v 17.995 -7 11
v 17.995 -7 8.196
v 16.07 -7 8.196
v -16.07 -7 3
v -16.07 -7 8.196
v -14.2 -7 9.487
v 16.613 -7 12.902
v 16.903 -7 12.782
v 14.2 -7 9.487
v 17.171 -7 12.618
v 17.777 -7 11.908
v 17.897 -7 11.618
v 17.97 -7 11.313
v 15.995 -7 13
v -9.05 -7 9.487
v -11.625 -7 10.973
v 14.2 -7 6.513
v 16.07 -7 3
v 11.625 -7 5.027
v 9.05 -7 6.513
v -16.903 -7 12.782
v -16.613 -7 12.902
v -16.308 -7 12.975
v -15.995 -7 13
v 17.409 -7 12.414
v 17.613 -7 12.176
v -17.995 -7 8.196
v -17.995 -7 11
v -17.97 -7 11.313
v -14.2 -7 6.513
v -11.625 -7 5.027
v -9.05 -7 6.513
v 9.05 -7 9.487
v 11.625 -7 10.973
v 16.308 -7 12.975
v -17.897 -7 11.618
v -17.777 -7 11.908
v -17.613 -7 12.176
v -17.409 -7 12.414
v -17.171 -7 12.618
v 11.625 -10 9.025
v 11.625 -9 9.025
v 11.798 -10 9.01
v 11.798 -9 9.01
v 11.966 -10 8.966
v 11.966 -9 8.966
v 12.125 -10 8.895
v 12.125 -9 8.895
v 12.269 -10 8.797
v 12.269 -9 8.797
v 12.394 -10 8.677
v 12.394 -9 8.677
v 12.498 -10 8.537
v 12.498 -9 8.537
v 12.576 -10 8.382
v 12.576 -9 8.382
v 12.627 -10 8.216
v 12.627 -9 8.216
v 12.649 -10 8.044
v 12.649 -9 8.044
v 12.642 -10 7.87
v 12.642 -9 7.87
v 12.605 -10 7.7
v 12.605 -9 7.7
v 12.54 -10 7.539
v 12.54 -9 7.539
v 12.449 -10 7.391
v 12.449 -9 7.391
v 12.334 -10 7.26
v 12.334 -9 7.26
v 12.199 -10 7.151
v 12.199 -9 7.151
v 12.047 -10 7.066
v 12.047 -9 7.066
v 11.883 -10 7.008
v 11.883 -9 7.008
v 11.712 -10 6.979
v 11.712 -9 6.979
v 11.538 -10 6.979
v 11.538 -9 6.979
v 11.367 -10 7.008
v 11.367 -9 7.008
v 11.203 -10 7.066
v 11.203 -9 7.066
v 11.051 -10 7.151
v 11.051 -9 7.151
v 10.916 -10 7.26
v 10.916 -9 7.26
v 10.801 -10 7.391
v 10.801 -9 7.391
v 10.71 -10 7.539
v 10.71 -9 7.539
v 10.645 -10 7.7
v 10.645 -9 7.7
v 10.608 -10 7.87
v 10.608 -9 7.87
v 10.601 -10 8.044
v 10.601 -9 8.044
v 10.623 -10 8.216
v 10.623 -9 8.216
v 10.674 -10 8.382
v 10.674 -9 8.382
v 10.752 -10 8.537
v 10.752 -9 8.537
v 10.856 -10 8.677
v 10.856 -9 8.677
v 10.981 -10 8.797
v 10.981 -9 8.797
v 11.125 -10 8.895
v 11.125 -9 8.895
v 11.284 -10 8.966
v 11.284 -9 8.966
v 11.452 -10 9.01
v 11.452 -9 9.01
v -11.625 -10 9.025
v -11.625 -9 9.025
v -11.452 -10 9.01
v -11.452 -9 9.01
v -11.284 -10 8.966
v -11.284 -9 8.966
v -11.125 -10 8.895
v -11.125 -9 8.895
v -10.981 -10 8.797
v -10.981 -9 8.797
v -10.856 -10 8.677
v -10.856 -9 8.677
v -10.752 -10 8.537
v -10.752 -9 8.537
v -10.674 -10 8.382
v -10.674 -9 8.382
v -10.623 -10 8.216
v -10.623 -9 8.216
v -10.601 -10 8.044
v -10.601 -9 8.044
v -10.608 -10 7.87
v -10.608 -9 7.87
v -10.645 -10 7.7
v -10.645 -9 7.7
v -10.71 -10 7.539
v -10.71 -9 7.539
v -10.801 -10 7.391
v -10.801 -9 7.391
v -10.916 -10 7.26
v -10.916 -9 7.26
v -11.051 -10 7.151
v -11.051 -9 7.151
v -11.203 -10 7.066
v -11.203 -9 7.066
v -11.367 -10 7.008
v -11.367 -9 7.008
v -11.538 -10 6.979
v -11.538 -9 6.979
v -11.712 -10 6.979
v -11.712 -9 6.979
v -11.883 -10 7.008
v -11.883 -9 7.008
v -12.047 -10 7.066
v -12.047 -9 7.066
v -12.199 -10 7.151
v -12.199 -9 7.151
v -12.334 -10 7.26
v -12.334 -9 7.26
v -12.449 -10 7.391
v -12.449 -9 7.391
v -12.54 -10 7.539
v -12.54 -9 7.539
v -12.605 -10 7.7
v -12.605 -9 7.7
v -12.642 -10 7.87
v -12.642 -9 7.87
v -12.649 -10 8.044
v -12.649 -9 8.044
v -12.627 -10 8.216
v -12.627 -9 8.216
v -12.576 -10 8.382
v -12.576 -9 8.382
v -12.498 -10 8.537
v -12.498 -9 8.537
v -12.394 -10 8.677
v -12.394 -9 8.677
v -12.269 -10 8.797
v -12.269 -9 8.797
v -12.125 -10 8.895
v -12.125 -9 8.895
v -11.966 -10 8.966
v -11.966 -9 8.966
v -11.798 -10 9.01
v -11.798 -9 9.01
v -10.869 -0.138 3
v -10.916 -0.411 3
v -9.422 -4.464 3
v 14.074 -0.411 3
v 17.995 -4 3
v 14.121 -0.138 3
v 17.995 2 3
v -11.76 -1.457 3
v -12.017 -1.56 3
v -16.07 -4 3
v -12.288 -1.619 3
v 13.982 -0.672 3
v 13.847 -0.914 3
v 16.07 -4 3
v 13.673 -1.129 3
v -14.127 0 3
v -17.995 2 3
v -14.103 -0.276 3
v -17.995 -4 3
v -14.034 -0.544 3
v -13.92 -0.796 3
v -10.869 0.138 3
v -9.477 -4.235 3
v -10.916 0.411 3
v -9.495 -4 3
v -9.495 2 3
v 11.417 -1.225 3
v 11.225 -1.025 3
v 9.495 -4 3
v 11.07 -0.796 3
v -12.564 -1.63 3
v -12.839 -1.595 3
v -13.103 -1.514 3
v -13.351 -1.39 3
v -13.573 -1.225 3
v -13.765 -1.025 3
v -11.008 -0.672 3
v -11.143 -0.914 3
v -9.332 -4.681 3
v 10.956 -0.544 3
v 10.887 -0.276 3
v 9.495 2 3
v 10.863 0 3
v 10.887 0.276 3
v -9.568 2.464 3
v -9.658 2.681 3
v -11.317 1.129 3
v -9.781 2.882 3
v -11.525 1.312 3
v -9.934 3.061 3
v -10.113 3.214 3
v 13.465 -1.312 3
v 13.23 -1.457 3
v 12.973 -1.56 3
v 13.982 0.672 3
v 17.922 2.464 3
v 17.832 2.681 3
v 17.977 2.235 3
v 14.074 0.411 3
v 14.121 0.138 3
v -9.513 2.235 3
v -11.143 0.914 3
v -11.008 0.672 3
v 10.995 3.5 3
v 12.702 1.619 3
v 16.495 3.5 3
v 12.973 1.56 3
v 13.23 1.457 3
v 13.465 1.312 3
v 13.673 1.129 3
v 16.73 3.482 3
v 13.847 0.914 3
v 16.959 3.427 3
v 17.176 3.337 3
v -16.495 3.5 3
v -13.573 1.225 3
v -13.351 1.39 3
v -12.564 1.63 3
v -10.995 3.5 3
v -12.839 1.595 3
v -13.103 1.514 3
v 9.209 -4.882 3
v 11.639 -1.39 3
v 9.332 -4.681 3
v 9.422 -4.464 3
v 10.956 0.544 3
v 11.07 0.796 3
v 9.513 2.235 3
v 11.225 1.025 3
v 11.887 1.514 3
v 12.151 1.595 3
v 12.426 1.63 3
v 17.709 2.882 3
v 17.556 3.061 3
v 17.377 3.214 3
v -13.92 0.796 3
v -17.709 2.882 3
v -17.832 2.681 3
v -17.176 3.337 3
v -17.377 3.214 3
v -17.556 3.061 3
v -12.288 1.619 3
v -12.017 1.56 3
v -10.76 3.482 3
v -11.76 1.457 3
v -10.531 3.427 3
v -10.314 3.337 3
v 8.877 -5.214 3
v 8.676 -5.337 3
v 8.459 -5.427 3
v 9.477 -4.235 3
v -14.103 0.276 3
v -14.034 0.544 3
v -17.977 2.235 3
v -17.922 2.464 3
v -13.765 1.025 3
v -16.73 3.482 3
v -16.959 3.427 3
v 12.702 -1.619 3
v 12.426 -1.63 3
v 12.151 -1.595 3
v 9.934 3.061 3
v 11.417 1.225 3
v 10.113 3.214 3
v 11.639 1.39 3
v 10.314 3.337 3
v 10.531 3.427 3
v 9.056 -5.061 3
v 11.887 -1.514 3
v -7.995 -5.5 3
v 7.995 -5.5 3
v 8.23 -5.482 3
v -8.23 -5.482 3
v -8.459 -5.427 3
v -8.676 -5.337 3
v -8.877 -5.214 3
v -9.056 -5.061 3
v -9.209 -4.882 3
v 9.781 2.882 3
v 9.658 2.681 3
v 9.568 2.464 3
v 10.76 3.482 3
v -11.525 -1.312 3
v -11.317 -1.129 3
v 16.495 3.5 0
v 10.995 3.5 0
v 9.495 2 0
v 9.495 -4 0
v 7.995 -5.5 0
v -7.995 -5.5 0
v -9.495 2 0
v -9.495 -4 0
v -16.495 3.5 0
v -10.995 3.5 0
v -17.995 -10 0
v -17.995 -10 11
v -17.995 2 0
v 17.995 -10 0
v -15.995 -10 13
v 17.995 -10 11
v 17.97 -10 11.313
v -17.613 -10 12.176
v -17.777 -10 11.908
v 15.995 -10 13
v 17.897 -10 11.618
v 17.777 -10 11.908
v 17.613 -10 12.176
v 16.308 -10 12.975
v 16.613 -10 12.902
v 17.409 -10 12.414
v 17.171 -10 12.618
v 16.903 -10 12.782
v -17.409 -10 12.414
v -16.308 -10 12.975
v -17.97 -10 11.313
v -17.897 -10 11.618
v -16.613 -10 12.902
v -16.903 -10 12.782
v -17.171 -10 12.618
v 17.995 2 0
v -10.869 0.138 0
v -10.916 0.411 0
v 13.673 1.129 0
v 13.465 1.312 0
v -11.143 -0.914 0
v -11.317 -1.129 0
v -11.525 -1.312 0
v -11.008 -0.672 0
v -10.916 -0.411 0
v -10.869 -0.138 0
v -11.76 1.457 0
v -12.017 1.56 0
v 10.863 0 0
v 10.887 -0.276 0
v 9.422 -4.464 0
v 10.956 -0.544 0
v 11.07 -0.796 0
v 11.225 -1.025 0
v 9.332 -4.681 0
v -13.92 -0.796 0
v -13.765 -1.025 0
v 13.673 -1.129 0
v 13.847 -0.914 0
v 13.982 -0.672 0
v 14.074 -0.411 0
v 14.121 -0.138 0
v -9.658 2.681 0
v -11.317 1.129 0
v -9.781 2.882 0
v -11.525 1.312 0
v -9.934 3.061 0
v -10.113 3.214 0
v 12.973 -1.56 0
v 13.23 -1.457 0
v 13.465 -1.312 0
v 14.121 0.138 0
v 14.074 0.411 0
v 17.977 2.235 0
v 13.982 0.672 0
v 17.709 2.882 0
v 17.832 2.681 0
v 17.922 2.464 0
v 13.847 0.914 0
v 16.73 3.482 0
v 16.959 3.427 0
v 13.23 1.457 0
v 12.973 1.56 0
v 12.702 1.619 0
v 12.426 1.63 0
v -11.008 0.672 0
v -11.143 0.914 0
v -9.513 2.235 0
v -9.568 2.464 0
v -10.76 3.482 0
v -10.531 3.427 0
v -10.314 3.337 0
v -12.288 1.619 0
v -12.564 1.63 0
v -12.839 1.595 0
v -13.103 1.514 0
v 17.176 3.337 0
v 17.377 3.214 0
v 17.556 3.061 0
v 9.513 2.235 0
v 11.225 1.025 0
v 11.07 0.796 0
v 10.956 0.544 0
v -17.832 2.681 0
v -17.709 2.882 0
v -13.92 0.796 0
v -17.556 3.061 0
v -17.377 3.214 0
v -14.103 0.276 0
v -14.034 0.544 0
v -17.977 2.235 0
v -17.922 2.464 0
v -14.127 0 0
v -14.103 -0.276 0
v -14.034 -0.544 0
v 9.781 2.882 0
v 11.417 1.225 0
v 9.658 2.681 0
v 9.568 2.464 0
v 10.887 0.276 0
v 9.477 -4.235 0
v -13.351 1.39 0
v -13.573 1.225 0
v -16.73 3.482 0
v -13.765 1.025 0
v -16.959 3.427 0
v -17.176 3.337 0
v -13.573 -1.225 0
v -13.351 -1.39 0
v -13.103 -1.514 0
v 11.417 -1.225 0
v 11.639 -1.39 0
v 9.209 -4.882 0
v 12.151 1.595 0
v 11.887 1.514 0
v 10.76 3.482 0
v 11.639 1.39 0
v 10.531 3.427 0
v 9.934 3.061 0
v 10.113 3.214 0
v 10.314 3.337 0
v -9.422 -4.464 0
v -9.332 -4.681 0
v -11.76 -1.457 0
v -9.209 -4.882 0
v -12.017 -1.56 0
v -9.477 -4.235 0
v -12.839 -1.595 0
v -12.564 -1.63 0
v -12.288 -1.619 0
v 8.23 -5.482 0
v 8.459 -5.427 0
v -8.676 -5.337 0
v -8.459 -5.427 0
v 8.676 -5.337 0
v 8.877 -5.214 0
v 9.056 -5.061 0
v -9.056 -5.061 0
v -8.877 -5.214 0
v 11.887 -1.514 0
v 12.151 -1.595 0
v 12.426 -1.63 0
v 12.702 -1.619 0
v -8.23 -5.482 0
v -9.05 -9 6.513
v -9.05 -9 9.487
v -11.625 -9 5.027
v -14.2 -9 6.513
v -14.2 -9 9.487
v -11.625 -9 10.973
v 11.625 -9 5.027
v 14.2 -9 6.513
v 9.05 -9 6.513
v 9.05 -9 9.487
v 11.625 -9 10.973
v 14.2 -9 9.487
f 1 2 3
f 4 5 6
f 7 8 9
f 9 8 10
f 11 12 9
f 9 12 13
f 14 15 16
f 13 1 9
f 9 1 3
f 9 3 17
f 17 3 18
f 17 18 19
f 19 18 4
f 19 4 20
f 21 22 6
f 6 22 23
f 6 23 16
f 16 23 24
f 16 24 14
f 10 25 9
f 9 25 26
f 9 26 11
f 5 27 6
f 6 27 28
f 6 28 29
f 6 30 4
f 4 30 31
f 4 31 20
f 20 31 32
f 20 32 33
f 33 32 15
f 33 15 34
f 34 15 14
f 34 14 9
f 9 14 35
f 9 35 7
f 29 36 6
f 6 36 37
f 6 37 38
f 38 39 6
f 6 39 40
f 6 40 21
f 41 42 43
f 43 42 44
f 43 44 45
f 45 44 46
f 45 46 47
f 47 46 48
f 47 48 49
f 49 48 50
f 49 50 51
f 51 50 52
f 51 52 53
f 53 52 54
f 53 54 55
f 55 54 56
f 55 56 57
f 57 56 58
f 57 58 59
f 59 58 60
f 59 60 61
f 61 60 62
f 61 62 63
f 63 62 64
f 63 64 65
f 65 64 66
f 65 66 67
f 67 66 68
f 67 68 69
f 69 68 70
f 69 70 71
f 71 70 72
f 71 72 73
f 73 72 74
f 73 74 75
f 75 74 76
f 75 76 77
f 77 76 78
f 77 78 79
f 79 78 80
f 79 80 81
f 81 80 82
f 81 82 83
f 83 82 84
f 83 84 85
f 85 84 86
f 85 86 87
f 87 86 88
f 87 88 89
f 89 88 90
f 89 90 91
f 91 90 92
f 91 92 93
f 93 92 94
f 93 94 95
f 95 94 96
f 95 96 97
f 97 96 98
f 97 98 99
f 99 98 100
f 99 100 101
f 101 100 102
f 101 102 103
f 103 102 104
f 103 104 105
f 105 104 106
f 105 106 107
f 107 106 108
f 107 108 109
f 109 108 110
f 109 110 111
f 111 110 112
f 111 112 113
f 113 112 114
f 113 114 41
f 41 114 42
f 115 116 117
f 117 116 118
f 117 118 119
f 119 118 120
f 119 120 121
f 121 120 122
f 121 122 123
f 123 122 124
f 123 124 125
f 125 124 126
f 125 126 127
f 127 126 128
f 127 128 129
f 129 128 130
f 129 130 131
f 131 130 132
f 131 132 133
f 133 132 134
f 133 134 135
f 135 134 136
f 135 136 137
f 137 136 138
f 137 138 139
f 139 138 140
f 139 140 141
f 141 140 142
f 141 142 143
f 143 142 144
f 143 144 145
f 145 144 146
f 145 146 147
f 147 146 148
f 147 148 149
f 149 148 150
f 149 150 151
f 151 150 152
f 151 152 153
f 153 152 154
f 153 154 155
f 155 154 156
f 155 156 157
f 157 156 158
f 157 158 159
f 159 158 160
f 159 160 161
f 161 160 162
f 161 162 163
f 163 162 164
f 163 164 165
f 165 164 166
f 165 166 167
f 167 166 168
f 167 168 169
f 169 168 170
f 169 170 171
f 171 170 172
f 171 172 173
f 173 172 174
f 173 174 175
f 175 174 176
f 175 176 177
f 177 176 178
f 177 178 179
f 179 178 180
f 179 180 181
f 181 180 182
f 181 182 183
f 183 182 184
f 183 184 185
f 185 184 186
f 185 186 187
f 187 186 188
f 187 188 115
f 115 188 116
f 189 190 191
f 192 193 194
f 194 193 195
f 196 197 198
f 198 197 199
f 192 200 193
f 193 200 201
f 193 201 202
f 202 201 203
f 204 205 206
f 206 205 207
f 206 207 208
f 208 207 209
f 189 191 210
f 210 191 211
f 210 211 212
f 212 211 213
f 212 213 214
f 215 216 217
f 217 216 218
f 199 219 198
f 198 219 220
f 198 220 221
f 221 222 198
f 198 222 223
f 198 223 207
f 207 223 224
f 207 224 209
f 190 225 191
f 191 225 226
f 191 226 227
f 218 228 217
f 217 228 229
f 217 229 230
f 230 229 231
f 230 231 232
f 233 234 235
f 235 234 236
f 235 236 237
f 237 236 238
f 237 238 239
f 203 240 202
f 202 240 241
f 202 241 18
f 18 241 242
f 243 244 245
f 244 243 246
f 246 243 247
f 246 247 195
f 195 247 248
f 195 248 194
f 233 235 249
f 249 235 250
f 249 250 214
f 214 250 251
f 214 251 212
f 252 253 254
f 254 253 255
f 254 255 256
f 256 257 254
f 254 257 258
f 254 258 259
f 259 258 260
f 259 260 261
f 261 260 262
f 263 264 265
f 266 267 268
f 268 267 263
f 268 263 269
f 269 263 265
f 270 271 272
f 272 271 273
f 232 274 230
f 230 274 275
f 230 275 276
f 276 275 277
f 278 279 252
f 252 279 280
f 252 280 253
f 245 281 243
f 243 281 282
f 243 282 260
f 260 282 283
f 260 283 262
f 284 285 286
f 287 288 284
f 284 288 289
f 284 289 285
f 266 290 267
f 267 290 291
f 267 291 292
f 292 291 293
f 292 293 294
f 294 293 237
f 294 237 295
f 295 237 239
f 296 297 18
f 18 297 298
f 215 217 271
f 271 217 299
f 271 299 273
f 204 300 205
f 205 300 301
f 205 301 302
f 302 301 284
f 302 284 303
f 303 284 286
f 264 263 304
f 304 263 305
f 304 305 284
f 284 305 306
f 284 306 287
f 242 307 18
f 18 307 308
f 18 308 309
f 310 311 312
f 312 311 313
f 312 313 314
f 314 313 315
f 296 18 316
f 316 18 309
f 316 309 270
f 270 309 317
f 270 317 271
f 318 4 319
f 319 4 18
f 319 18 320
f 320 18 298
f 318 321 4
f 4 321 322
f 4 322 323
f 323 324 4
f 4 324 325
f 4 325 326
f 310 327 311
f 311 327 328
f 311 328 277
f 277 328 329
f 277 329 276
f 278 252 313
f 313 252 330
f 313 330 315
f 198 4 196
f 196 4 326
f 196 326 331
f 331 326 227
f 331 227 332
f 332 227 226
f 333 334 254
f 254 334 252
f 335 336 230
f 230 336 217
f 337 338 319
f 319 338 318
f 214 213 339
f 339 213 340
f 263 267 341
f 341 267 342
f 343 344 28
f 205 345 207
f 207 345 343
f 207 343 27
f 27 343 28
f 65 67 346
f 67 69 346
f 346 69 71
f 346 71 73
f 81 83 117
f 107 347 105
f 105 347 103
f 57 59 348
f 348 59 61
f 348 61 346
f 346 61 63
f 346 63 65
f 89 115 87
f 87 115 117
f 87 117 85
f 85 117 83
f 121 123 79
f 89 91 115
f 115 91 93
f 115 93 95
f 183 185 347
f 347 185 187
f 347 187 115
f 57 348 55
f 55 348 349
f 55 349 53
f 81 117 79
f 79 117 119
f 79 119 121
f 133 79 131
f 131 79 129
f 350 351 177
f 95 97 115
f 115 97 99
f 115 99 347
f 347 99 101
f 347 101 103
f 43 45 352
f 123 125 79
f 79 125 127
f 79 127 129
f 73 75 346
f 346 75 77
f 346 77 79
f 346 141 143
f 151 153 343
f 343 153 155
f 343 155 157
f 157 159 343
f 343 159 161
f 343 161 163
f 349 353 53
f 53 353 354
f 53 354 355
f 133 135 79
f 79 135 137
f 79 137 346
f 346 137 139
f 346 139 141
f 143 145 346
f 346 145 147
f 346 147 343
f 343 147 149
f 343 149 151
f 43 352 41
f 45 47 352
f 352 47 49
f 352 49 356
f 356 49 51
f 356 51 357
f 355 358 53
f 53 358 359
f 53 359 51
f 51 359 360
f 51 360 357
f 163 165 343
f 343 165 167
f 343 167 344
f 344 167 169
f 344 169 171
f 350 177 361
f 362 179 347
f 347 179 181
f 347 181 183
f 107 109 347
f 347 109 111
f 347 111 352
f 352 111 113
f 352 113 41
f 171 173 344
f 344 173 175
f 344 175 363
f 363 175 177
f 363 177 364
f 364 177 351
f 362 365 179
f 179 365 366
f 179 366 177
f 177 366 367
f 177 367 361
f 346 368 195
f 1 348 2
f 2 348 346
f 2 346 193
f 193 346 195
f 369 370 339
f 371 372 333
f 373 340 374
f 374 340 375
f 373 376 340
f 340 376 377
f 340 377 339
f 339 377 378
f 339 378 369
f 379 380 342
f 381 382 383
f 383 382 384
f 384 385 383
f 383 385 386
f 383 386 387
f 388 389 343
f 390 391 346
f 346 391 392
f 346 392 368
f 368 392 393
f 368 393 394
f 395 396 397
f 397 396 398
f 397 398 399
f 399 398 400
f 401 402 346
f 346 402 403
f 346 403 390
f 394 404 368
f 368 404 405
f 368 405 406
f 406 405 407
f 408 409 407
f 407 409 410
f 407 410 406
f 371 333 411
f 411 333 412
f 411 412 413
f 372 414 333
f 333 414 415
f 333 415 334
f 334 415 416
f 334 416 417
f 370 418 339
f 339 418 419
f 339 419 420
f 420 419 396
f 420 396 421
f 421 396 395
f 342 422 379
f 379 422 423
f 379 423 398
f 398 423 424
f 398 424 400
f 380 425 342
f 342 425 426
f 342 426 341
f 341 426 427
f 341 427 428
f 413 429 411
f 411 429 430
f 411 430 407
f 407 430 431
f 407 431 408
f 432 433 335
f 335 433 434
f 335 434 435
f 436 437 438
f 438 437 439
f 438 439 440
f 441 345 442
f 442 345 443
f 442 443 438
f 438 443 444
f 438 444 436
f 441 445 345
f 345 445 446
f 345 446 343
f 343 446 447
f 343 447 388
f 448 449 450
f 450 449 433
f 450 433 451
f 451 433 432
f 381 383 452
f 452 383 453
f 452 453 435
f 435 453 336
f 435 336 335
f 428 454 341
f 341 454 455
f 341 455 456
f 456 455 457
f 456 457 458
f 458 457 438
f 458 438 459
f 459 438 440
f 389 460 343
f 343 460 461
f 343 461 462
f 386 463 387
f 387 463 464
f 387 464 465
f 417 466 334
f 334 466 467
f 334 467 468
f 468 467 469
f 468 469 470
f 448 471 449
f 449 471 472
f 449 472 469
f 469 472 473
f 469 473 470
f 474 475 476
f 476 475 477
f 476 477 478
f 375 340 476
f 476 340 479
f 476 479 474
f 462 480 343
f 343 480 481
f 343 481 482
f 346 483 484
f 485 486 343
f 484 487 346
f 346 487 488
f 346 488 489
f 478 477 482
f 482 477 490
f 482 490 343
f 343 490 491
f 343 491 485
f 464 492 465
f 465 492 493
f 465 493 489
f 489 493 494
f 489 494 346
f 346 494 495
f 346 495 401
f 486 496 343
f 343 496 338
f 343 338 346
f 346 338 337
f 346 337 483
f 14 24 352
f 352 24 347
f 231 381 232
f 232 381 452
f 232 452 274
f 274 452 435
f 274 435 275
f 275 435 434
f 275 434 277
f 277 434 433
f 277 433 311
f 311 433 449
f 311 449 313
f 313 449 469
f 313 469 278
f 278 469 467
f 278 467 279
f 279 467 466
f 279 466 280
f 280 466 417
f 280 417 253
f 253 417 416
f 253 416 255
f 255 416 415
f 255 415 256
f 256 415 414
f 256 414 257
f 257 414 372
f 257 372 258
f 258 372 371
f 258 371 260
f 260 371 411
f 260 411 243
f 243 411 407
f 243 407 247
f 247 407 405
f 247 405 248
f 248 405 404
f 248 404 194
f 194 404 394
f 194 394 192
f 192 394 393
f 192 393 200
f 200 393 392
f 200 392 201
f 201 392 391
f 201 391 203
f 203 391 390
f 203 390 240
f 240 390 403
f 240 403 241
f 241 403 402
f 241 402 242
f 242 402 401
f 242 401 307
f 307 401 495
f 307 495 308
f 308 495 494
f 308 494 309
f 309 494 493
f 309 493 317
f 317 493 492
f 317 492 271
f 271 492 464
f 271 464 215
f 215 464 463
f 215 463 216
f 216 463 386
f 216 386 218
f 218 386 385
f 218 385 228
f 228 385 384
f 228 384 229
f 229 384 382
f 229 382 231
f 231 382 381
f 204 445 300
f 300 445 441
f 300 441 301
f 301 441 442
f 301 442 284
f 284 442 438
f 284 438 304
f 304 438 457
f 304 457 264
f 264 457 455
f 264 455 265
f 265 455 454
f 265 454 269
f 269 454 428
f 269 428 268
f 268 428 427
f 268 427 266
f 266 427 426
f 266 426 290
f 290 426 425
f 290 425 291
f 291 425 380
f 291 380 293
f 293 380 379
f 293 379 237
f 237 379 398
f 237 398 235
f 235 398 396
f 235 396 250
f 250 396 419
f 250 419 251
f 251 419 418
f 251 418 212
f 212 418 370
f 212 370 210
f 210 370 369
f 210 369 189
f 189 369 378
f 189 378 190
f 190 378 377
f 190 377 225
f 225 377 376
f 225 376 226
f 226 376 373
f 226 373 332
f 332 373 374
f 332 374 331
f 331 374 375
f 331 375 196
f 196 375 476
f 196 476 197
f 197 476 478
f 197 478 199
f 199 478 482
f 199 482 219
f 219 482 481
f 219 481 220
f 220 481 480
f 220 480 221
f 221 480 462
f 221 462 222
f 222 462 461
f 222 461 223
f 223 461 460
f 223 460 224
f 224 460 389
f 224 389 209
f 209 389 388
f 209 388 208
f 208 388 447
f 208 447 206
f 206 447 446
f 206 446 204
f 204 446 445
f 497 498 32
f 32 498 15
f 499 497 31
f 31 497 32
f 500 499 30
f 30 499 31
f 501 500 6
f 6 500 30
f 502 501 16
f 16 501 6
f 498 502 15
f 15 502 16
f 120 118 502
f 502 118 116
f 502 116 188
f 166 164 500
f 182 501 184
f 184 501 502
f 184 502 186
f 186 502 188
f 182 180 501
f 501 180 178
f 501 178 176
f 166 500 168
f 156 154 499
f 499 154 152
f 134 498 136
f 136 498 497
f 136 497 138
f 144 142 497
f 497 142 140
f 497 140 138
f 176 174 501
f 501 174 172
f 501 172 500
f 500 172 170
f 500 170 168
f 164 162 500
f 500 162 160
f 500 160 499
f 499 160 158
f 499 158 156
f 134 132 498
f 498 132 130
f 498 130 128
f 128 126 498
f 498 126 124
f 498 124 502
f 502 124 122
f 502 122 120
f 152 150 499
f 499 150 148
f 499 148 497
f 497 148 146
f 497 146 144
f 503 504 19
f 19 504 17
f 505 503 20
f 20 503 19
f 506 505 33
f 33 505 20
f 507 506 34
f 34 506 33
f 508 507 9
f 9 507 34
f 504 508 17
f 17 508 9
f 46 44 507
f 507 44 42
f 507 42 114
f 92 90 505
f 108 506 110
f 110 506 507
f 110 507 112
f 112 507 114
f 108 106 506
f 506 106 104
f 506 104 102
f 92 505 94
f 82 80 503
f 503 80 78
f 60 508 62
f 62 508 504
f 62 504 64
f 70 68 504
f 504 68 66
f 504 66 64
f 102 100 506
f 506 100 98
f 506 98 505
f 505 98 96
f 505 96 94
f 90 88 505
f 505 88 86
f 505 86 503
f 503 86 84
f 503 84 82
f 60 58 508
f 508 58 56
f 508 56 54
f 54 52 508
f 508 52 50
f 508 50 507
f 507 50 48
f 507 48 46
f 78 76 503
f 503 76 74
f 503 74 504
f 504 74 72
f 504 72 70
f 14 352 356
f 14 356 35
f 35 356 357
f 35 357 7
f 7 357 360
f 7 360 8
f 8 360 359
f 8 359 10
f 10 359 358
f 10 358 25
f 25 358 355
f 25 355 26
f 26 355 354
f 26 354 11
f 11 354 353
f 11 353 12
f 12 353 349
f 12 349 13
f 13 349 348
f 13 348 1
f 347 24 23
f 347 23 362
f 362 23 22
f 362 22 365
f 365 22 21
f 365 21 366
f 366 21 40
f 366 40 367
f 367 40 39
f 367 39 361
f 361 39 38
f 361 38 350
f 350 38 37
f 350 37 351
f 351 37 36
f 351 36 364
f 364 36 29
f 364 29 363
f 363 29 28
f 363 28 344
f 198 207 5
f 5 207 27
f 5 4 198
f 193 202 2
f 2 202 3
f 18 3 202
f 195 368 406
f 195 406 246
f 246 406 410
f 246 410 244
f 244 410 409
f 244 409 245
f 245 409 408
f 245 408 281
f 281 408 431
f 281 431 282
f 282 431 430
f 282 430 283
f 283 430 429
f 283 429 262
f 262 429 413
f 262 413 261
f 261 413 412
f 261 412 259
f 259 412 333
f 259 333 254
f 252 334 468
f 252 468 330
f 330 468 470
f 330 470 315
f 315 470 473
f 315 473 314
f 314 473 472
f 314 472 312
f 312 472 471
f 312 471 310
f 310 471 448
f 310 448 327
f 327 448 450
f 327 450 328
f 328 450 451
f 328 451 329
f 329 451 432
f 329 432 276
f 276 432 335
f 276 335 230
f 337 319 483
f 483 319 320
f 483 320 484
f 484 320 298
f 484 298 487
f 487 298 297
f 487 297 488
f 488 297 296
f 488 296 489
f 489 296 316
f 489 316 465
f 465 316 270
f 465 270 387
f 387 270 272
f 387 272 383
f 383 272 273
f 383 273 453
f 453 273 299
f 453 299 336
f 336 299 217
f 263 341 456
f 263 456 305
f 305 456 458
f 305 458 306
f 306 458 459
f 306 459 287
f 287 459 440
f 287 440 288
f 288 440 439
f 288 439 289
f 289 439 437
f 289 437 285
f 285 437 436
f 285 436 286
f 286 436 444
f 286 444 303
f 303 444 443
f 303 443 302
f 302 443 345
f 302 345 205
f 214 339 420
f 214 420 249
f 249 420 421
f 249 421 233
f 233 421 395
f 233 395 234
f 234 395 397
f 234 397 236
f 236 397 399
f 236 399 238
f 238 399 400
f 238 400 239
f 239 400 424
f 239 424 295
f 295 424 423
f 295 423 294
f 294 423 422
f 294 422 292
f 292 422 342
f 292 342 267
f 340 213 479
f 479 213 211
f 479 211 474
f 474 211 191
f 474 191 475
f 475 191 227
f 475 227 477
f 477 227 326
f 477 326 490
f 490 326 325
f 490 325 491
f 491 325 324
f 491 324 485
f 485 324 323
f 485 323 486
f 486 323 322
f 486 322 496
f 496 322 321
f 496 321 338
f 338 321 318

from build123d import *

# Parameters (mm, degrees)
BOSS_EXTRUDE1_DEPTH      = 3
SKETCH2_W                = 35.99
SKETCH2_H                = 3
BOSS_EXTRUDE2_DEPTH      = 13
F_4_CLEARANCE_HOLE1_D    = 3.2639
M2_5X0_45_TAPPED_HOLE1_D = 2.05
CUT_EXTRUDE1_DEPTH       = 25.557484093
CUT_EXTRUDE1_DEPTH_BACK  = 2
FILLET1_R                = 2
RIB1_REACH               = 41.551
SKETCH8_WALL_W           = 87.101962048
SKETCH8_WALL_H           = 1.925
FILLET2_R                = 1.5


with BuildPart() as part:
    # Sketch1 → Boss-Extrude1 (new body)
    with BuildSketch(Plane.XY):
        Polygon((-17.995, 3.5), (-17.995, 0), (-17.995, -10), (17.995, -10), (17.995, 0), (17.995, 3.5), (9.495, 3.5), (9.495, 0), (9.495, -5.5), (-9.495, -5.5), (-9.495, 0), (-9.495, 3.5), align=None)
    extrude(amount=BOSS_EXTRUDE1_DEPTH)

    # Sketch2 → Boss-Extrude2 (add)
    with BuildSketch(Plane.XY):
        with Locations((0, -8.5)):
            Rectangle(SKETCH2_W, SKETCH2_H)
    extrude(amount=BOSS_EXTRUDE2_DEPTH)

    # #4 Clearance Hole1 (through all)
    with Locations(Plane(origin=(0, 0, 0), x_dir=(-1, 0, 0), z_dir=(0, 0, -1))):
        with Locations((12.495, 0), (-12.495, 0)):
            Hole(F_4_CLEARANCE_HOLE1_D / 2)

    # M2.5x0.45 Tapped Hole1 (through all)
    with Locations(Plane(origin=(0, -7, 0), x_dir=(1, 0, 0), z_dir=(0, 1, 0))):
        with Locations((-11.625, -8), (11.625, -8)):
            Hole(M2_5X0_45_TAPPED_HOLE1_D / 2)

    # Sketch9 → Cut-Extrude1 (cut, two sides)
    with BuildSketch(Plane(origin=(0, -7, 0), x_dir=(1, 0, 0), z_dir=(0, 1, 0))) as cut_extrude1_sk:
        Polygon((-9.05, -6.513323057), (-11.625, -5.026646114), (-14.2, -6.513323057), (-14.2, -9.486676943), (-11.625, -10.973353886), (-9.05, -9.486676943), align=None)
        Polygon((11.625, -5.026646114), (9.05, -6.513323057), (9.05, -9.486676943), (11.625, -10.973353886), (14.2, -9.486676943), (14.2, -6.513323057), align=None)
    extrude(amount=CUT_EXTRUDE1_DEPTH, mode=Mode.SUBTRACT)
    extrude(cut_extrude1_sk.sketch, amount=-CUT_EXTRUDE1_DEPTH_BACK, mode=Mode.SUBTRACT)

    # Fillet1
    fillet1_edges = [part.edges().sort_by_distance(p)[0] for p in [
        (-17.995, -8.5, 13),
        (17.995, -8.5, 13),
    ]]
    fillet(fillet1_edges, radius=FILLET1_R)

    # Sketch8 wall → Rib1 (add, up to next)
    with BuildSketch(Plane(origin=(-17.995, -5.5, 5.598076211), x_dir=(0, -0.499999999979, 0.866025403797), z_dir=(0, 0.866025403797, 0.499999999979)), mode=Mode.PRIVATE) as rib1_sk1:
        with Locations((0, 0.9625)):
            Rectangle(SKETCH8_WALL_W, SKETCH8_WALL_H)
    rib1_tool1 = extrude(rib1_sk1.sketch, amount=-RIB1_REACH, mode=Mode.PRIVATE) - part.part
    rib1 = rib1_tool1.solids().sort_by_distance((-17.995, -5.5, 5.598076211))[0]
    add(rib1)

    # Mirror1: Rib1 across plane
    add(rib1.mirror(Plane(origin=(0, 0, 0), x_dir=(0, 0, 1), z_dir=(1, 0, 0))))

    # Fillet2
    fillet2_edges = [part.edges().sort_by_distance(p)[0] for p in [
        (9.495, 3.5, 1.5),
        (9.495, -5.5, 1.5),
        (-9.495, -5.5, 1.5),
        (-9.495, 3.5, 1.5),
        (-17.995, 3.5, 1.5),
        (17.995, 3.5, 1.5),
    ]]
    fillet(fillet2_edges, radius=FILLET2_R)


solid = part.part
